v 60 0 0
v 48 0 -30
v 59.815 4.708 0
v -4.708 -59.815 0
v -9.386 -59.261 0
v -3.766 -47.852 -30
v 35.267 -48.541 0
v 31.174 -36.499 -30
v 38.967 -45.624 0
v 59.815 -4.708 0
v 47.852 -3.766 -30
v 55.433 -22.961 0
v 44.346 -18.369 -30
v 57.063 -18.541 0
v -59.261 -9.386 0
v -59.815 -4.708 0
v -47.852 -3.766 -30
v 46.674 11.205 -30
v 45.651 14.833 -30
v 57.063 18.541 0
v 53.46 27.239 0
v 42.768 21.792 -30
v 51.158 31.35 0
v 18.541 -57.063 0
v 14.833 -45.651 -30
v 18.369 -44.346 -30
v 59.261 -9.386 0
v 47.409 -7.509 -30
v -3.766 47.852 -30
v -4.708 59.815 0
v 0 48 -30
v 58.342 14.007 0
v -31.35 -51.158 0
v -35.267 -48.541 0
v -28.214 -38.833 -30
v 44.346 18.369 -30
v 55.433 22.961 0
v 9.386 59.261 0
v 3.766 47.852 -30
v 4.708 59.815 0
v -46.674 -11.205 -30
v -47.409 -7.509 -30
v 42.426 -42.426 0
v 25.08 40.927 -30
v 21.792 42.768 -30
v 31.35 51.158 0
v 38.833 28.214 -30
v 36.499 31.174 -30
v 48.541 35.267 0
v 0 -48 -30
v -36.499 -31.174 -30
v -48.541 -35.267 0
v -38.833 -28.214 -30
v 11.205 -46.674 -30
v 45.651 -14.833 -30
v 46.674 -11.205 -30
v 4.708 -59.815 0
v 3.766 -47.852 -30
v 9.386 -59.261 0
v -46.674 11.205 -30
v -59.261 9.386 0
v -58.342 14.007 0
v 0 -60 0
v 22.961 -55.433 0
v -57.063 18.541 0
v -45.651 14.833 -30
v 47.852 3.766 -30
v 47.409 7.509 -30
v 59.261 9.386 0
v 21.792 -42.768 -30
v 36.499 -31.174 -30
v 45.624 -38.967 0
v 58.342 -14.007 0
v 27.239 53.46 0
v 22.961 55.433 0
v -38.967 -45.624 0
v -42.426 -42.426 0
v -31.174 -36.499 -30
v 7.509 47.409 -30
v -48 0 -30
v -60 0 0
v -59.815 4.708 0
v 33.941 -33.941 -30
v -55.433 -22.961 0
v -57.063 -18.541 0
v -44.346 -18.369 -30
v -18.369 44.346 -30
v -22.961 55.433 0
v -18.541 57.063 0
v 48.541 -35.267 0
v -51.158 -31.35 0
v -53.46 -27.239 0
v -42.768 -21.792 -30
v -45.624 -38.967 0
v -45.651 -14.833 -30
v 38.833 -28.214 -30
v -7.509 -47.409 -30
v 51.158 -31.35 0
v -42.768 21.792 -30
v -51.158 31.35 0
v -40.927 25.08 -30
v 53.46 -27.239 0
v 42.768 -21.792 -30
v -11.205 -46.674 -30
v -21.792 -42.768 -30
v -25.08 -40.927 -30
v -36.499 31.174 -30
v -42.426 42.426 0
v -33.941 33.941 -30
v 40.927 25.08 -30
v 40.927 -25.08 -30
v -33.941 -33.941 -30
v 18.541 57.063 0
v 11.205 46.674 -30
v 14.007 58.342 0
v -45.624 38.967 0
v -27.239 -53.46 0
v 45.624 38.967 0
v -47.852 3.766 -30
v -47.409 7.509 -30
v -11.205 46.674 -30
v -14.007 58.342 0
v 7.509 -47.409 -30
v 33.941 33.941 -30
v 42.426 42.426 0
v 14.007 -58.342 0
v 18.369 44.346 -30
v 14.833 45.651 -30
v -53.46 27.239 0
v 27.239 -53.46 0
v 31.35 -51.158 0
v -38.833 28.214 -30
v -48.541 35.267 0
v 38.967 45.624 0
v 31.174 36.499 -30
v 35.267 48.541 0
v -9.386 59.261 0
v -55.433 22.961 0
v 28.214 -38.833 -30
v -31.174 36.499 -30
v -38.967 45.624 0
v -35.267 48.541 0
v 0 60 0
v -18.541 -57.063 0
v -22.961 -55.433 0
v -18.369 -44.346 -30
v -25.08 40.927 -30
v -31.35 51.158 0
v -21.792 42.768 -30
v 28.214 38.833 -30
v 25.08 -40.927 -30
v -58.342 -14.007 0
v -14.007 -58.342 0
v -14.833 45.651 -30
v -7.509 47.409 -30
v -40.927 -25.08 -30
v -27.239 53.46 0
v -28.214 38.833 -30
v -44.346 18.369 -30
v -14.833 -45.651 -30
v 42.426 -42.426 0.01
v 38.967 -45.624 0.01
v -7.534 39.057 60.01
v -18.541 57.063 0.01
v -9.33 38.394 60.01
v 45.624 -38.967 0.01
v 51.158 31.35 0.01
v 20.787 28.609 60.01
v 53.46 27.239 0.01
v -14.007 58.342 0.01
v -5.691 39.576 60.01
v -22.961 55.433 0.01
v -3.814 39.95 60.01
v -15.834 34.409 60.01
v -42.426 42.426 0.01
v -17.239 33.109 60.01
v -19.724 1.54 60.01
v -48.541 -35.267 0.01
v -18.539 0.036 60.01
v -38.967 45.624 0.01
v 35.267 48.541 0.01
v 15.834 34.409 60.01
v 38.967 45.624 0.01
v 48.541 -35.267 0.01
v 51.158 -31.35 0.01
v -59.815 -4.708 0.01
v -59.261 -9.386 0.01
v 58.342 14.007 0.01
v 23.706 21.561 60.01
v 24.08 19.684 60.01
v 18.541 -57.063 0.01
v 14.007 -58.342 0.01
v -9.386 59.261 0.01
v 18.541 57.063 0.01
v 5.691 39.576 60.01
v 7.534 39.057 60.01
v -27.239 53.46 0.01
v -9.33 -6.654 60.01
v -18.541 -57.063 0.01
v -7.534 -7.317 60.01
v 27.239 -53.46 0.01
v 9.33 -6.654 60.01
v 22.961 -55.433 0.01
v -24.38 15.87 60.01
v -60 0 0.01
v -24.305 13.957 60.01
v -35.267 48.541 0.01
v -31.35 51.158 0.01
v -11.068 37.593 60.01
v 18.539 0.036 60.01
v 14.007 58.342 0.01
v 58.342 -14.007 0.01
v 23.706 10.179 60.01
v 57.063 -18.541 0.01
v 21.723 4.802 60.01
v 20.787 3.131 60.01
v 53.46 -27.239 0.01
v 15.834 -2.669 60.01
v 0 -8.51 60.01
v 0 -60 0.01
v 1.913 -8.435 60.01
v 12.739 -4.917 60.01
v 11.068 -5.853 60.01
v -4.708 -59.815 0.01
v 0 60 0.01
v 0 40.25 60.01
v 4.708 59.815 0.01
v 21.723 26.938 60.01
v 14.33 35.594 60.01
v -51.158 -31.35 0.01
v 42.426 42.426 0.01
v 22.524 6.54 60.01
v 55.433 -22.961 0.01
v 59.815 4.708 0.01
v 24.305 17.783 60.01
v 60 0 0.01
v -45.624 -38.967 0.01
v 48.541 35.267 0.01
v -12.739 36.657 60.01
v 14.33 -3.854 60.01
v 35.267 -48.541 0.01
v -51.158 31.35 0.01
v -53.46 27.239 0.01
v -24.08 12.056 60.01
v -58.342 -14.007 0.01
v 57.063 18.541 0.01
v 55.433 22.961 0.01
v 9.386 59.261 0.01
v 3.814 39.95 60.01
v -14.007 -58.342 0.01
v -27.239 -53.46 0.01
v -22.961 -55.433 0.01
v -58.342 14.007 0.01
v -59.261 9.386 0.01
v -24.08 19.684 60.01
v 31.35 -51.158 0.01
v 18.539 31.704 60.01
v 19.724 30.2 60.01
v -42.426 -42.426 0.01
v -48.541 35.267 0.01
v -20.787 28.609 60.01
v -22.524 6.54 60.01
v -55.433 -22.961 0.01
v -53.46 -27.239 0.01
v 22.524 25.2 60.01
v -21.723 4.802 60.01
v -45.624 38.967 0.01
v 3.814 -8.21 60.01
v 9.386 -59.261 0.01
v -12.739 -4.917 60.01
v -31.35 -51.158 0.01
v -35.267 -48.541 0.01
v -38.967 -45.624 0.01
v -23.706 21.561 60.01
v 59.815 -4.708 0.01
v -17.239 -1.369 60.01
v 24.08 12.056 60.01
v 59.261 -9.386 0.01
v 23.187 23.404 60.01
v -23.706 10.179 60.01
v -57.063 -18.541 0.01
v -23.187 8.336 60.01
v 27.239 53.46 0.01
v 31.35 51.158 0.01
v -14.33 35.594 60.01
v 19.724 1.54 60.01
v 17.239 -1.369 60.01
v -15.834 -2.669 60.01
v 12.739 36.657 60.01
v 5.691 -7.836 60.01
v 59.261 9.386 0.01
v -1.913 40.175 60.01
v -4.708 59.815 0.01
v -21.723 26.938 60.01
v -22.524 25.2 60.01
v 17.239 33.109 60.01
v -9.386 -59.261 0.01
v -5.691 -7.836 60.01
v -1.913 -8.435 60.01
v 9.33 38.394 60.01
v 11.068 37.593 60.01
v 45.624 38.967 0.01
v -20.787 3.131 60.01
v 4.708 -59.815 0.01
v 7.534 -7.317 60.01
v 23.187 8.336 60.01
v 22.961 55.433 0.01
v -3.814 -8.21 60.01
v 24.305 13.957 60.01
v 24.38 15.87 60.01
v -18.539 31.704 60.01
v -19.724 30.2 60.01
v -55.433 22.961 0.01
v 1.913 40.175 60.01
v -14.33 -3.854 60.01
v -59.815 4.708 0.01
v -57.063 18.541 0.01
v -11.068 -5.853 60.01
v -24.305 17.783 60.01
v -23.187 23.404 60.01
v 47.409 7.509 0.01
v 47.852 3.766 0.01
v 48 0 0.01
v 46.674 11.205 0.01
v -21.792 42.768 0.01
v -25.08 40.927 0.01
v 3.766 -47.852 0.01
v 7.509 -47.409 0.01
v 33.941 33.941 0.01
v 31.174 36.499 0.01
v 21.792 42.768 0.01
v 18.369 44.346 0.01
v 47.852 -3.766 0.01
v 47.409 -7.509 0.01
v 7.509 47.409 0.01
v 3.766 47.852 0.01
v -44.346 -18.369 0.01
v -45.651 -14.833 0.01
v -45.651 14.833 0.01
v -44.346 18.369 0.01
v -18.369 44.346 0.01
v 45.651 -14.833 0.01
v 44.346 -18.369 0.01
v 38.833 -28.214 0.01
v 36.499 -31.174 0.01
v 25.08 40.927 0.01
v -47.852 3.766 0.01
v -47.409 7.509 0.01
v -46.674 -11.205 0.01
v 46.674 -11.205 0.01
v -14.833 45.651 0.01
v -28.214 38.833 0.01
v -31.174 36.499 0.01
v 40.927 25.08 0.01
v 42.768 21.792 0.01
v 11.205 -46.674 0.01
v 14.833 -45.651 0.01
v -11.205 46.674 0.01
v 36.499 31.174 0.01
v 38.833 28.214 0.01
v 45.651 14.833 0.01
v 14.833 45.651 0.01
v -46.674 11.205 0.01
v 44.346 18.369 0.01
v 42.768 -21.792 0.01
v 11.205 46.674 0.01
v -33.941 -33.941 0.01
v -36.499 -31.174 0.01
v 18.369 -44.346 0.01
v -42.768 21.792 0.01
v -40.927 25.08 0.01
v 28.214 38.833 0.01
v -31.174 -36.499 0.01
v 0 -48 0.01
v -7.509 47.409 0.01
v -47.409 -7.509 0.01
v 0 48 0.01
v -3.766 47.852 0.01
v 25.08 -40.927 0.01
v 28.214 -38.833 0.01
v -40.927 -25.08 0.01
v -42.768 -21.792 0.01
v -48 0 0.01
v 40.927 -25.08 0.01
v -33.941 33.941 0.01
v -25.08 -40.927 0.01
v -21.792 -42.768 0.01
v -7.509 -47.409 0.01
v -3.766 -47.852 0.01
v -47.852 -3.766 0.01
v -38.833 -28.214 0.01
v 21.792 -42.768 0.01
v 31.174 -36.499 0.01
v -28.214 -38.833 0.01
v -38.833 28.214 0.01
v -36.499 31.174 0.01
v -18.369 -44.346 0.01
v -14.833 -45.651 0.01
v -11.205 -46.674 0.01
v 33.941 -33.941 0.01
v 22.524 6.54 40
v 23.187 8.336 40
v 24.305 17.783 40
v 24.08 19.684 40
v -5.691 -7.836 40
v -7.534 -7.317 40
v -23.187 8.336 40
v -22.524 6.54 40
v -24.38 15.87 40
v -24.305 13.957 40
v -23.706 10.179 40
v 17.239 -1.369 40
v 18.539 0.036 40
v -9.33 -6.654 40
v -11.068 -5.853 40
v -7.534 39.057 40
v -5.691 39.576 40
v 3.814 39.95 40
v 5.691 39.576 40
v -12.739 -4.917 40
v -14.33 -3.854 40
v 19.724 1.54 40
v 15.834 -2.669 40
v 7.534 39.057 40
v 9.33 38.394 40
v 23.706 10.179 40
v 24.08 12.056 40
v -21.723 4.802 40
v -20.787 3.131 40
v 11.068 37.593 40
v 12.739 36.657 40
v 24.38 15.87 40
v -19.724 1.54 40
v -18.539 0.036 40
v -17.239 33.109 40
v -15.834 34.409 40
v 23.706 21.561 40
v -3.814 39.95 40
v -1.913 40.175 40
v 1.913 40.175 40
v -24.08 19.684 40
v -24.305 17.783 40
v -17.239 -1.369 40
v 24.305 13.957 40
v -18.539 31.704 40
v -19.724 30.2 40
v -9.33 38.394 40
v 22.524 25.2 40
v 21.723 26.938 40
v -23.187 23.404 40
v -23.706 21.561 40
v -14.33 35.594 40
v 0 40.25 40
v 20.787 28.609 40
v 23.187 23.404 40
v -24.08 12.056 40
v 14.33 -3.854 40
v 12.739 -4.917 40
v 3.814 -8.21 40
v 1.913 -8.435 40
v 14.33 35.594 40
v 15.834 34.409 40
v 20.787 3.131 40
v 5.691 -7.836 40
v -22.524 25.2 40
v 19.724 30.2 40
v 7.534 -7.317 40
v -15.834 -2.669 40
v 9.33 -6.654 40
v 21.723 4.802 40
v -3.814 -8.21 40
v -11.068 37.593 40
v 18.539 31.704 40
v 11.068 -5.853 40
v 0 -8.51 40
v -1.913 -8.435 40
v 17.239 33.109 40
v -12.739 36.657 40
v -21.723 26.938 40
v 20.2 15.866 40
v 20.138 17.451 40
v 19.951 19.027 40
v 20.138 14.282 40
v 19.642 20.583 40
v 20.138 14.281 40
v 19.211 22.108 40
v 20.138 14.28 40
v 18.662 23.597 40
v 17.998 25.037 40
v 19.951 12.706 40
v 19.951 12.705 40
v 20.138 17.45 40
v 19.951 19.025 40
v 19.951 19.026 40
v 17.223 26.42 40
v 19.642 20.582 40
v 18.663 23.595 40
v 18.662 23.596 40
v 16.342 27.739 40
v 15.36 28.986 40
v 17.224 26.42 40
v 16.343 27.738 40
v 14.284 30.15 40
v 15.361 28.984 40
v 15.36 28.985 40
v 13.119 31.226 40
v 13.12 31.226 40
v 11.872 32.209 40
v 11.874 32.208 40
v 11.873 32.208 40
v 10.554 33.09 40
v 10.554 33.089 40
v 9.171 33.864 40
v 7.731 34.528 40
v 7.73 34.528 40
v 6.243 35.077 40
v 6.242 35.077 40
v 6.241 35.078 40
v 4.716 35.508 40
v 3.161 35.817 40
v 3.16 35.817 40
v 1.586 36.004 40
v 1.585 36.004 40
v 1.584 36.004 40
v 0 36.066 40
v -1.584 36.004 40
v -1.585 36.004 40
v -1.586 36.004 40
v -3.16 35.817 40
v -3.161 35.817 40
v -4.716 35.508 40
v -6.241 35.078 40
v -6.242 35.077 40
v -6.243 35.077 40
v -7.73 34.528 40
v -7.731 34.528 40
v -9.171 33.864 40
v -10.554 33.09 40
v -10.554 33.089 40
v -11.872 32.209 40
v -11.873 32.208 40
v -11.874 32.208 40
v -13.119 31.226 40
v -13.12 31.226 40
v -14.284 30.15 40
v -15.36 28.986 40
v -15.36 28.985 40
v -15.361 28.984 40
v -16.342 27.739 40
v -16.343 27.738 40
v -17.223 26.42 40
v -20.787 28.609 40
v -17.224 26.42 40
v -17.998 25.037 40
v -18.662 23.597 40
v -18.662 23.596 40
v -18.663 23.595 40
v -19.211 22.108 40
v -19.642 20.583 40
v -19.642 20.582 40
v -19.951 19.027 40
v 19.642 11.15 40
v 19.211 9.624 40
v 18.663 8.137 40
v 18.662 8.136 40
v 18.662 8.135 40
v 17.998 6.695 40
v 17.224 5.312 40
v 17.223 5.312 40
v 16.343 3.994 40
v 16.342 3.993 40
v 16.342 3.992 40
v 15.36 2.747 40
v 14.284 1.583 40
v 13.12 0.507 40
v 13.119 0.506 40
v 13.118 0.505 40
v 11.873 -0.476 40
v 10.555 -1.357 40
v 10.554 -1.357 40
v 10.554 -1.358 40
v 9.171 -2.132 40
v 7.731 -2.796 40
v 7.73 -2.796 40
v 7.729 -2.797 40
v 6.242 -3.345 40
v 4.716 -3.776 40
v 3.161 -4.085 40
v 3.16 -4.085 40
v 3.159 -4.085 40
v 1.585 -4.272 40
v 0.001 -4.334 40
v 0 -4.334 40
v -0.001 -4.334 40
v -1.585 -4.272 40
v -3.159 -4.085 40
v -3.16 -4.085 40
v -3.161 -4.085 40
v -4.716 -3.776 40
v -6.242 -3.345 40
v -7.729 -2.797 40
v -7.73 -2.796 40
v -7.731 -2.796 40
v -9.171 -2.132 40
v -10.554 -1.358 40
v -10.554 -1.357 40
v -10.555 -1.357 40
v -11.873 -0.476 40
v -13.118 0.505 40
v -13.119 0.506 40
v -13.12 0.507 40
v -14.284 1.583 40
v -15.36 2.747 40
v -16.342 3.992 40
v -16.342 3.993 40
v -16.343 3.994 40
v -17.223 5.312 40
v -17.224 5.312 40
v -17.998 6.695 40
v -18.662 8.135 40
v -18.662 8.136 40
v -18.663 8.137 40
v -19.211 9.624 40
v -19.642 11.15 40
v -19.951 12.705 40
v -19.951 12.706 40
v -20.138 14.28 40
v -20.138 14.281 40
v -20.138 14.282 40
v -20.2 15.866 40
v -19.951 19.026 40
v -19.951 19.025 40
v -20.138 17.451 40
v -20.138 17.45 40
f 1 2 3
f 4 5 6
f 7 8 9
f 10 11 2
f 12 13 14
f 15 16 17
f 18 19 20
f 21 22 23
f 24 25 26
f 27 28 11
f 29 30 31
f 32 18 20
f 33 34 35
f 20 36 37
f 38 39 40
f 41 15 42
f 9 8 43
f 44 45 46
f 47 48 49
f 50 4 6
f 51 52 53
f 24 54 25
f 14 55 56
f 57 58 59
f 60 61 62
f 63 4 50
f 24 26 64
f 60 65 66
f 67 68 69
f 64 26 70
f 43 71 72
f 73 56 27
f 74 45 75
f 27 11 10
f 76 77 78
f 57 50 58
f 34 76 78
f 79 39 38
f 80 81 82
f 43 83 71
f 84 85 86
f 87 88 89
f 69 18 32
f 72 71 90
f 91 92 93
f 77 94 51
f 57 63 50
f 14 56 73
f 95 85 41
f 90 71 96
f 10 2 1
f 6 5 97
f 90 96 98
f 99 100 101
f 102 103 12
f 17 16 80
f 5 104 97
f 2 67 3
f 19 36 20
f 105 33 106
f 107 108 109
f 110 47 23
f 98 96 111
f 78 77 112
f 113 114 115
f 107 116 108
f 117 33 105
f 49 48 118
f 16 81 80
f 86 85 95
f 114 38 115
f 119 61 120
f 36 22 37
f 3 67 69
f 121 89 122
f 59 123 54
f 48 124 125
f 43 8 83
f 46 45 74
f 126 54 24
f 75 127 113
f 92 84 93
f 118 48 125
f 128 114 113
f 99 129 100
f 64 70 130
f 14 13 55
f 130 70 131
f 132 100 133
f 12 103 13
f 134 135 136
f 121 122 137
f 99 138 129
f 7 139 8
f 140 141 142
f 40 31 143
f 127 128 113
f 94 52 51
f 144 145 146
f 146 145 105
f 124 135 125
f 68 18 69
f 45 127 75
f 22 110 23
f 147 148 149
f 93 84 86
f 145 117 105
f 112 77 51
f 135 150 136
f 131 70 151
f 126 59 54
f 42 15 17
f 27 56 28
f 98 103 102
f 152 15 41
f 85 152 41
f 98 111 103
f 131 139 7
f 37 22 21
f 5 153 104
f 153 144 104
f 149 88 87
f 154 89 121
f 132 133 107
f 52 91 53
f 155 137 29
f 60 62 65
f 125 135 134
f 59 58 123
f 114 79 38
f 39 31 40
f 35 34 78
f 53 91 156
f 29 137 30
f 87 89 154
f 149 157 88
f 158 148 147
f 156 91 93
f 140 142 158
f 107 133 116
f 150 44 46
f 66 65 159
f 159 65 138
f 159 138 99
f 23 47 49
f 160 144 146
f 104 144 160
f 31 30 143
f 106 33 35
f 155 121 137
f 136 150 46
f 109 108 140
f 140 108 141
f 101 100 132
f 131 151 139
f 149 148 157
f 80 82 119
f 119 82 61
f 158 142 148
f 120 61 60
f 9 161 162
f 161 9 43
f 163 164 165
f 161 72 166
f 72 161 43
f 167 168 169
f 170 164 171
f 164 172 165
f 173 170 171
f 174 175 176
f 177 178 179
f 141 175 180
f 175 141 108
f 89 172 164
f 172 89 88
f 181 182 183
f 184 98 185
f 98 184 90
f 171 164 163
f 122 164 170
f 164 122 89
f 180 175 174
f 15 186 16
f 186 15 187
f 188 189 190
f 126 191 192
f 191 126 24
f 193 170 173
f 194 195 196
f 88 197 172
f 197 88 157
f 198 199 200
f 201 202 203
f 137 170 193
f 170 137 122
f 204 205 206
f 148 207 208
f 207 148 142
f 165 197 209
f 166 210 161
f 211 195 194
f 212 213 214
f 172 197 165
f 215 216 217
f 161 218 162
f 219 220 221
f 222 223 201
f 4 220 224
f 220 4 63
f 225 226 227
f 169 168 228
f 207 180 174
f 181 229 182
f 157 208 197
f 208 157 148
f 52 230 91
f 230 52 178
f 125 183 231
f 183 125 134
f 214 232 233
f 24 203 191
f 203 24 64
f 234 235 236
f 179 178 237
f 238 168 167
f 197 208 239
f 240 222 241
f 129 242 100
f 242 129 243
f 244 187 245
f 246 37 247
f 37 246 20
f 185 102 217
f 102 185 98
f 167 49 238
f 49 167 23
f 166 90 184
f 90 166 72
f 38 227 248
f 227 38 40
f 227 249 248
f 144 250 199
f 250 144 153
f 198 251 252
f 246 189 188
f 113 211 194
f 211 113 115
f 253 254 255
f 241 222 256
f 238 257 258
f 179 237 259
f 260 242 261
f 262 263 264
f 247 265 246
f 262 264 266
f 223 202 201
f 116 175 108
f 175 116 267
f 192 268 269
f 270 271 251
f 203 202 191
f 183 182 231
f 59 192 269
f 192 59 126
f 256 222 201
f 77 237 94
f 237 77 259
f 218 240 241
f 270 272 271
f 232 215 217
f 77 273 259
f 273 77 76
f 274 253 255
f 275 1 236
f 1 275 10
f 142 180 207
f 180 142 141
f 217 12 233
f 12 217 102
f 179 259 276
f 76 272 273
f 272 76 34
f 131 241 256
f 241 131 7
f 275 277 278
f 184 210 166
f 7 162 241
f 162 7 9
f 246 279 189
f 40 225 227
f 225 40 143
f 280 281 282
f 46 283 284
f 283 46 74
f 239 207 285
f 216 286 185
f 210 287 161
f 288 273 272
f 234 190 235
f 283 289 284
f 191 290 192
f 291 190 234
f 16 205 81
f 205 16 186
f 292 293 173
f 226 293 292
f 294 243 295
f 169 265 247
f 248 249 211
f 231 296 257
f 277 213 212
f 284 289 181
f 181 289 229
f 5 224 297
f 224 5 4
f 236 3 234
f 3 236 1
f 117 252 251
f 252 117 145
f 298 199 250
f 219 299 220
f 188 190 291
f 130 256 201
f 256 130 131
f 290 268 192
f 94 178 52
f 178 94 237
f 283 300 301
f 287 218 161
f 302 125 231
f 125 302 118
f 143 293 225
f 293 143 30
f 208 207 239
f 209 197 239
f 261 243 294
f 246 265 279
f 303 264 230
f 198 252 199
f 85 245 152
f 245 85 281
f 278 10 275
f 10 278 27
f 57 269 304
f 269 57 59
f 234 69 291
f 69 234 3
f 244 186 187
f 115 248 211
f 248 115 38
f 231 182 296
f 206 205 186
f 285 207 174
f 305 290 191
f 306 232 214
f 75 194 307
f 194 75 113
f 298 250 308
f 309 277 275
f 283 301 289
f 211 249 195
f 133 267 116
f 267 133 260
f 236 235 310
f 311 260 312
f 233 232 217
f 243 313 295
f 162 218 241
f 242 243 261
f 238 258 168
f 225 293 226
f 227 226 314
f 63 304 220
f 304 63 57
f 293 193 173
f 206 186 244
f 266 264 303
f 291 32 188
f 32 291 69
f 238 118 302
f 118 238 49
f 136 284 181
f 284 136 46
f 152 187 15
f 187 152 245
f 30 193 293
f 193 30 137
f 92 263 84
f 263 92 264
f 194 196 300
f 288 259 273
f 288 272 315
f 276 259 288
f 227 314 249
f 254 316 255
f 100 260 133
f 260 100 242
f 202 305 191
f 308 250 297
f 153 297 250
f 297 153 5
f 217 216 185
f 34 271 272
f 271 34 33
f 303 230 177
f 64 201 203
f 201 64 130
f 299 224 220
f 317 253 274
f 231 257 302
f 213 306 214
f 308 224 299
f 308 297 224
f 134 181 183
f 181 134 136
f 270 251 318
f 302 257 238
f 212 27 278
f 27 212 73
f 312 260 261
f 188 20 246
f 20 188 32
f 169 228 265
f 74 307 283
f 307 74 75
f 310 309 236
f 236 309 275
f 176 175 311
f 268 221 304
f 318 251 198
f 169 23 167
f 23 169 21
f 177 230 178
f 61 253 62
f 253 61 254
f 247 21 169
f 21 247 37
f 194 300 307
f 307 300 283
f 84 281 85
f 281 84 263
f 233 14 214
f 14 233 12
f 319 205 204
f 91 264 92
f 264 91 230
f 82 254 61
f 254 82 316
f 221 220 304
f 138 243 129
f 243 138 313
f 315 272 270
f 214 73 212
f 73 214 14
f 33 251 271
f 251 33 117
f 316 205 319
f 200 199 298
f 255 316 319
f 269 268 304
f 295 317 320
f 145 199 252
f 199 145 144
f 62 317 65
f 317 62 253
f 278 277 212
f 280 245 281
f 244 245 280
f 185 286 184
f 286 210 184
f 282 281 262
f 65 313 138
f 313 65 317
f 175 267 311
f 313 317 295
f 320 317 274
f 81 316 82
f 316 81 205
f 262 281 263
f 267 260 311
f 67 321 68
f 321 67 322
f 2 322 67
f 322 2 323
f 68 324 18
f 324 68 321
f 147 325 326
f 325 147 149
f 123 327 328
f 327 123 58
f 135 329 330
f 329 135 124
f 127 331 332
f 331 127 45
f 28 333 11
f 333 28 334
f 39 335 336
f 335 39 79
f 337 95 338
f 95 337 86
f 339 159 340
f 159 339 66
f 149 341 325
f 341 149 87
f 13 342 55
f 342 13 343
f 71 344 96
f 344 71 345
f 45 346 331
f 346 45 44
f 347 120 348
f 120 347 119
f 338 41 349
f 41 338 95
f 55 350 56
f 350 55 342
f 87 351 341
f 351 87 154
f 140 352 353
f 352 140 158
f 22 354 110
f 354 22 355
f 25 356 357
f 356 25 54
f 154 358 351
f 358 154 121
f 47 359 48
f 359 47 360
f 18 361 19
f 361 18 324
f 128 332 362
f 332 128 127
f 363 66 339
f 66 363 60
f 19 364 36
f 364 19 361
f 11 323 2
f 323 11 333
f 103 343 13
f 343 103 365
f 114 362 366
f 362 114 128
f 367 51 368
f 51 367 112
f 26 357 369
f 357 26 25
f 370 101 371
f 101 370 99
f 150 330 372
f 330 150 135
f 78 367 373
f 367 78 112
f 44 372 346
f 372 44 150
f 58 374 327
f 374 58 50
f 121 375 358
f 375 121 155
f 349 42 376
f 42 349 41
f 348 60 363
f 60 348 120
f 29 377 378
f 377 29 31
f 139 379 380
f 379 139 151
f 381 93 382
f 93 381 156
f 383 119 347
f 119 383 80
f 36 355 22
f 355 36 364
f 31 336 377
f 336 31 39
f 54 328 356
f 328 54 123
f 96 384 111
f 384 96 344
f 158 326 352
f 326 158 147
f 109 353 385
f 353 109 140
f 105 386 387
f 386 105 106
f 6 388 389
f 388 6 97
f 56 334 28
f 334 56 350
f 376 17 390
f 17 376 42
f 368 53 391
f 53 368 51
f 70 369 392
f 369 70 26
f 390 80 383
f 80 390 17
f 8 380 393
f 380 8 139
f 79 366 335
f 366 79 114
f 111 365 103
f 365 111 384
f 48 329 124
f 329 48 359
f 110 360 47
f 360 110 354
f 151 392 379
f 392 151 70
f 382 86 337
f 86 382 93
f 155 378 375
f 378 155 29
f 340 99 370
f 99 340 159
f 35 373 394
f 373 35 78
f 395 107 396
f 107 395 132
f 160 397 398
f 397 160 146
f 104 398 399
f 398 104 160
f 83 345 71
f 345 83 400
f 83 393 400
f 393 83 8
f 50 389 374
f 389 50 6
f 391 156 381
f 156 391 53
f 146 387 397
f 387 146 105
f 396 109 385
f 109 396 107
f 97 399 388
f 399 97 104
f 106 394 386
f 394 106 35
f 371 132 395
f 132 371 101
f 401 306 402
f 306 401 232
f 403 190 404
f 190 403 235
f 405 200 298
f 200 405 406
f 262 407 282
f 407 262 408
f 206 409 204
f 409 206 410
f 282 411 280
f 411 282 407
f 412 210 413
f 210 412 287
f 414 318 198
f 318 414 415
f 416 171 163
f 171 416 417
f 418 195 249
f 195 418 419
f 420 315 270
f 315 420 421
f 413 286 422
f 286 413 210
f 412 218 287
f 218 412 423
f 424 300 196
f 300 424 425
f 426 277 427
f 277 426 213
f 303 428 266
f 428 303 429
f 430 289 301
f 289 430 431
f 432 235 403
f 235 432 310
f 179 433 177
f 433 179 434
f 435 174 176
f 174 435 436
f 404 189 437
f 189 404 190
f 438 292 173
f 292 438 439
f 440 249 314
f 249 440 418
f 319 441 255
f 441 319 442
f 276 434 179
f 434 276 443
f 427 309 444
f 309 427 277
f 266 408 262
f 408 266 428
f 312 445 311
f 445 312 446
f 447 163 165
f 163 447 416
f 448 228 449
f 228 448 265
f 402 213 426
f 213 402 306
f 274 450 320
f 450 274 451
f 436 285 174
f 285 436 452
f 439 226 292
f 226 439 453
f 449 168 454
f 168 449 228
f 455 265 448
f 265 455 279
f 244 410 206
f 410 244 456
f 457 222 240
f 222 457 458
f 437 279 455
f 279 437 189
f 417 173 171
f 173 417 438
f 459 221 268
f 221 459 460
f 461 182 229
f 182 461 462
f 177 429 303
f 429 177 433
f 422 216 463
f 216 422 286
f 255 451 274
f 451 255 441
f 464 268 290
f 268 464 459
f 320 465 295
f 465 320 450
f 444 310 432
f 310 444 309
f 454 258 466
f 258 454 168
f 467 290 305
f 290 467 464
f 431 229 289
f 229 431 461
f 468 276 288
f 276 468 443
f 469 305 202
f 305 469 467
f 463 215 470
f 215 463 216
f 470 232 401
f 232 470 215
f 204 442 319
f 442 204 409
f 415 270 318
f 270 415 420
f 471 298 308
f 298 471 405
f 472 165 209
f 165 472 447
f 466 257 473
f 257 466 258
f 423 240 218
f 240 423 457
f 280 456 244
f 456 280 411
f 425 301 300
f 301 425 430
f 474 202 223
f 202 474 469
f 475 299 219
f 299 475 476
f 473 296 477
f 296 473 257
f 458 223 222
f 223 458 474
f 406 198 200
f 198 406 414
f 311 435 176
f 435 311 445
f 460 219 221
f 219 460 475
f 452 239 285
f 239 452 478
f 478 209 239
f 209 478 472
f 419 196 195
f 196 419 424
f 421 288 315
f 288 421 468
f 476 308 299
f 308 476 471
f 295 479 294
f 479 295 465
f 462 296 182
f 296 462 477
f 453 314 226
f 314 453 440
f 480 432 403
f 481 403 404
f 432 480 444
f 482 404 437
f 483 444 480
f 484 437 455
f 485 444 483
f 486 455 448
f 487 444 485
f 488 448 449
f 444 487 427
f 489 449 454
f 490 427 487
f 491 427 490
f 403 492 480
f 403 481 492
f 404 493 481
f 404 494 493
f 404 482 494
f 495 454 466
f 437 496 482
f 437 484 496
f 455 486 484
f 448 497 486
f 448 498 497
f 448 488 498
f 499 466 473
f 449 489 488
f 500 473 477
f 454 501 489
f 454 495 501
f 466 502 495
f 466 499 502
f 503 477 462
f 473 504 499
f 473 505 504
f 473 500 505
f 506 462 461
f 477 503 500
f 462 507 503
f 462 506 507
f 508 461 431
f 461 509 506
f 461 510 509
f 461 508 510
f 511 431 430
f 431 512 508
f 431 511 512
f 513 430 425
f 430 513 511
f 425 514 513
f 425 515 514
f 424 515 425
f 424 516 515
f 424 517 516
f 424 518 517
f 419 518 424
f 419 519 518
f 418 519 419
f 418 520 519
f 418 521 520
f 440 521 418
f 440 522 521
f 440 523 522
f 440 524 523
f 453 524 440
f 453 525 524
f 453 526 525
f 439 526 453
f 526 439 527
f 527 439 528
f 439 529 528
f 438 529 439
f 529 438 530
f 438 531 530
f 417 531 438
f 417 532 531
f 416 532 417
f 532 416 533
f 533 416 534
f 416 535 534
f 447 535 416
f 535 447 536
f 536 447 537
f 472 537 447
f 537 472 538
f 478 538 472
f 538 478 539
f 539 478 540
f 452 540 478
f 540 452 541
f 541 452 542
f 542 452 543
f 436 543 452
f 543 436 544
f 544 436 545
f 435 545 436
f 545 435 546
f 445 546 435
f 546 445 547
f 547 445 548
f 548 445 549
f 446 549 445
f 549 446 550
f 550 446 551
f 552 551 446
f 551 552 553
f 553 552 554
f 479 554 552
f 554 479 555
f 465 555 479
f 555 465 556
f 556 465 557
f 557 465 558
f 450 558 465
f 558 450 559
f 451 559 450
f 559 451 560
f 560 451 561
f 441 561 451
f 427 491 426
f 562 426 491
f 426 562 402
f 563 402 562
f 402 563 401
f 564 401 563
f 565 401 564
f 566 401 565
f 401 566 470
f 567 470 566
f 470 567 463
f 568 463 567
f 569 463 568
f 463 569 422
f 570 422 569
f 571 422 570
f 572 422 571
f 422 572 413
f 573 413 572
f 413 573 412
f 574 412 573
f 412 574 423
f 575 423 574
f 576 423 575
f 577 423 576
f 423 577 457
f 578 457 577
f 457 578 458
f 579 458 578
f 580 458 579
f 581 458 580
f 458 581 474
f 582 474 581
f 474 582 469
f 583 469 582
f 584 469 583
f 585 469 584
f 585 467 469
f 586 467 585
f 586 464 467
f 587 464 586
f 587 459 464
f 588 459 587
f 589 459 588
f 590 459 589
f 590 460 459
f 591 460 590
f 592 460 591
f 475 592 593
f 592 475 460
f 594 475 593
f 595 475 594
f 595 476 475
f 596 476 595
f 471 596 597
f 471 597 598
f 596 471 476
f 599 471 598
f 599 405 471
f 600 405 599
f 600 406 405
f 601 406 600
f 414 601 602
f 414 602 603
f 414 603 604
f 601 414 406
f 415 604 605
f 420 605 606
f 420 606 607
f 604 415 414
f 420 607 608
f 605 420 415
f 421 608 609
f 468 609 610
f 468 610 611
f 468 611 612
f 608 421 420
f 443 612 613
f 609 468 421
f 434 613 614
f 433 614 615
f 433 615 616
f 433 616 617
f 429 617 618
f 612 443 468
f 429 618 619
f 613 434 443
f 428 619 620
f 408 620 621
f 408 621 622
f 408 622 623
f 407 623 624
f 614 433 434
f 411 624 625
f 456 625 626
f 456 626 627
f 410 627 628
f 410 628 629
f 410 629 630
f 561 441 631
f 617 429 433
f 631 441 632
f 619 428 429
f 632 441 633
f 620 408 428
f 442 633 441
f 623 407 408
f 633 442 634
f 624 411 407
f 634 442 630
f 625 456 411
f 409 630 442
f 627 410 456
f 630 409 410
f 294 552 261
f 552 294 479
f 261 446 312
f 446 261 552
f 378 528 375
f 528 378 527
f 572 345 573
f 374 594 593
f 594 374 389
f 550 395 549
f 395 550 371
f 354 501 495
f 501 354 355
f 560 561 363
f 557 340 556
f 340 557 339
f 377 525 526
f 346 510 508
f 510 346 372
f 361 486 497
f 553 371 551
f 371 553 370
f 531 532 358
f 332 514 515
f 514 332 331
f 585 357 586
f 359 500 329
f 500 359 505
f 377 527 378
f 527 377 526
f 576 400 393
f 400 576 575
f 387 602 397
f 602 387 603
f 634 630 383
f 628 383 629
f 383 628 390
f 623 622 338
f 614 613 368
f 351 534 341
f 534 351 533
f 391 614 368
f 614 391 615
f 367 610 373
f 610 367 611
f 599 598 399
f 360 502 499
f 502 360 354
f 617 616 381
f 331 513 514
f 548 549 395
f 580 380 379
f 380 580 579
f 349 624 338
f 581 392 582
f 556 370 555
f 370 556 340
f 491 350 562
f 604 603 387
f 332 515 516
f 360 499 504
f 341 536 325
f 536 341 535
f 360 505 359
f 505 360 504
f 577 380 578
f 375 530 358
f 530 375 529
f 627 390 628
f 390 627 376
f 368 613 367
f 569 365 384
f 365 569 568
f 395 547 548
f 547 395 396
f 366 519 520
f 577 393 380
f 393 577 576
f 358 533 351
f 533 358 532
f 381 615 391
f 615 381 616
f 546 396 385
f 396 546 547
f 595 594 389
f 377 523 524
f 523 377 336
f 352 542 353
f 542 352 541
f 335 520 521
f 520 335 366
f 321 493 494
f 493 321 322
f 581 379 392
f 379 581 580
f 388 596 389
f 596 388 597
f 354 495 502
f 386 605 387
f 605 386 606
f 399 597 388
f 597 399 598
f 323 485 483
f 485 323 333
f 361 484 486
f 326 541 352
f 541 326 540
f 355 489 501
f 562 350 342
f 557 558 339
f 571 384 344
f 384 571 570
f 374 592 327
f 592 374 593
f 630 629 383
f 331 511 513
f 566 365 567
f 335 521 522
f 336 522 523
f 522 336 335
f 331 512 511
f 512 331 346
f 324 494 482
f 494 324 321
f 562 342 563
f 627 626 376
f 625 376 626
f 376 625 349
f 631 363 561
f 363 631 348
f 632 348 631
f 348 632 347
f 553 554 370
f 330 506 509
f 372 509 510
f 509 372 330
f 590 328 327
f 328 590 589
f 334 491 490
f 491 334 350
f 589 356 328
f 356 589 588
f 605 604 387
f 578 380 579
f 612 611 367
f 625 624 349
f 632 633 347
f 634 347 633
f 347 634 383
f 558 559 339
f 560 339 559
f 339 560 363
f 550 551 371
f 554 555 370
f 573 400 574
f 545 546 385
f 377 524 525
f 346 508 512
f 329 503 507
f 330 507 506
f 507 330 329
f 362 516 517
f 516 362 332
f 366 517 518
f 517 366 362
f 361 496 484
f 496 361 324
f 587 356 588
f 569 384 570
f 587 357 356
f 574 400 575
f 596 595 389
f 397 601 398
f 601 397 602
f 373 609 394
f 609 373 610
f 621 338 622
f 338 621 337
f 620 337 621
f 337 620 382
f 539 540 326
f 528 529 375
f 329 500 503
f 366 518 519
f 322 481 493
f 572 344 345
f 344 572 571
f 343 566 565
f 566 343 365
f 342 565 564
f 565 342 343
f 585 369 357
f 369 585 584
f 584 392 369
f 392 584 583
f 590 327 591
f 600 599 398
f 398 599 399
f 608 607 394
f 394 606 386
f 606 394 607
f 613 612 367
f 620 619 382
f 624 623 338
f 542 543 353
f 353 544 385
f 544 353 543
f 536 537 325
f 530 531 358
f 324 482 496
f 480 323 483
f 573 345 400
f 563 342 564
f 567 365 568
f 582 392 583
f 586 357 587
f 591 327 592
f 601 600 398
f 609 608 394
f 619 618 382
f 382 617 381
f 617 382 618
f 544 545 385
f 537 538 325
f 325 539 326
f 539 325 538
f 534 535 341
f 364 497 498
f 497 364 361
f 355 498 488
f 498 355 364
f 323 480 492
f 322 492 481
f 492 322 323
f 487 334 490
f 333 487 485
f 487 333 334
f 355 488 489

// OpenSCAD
$fn=80;

// units are mm
// schedule 40 1.5 inch pipe is OD=1.9 in., ID=1.590 in.
// fan shroud OD=~96mm

d_over_fan_max=120;
d_over_fan_min=96;
l_below=30;
l_above=60;
shelf_pos=40;

tube_id = 1.590*25.4;
tube_od = 1.9*25.4;
tube_od_fudge=0.5;

height_from_deck=20;
top_shift=d_over_fan_max/2-tube_od/2-height_from_deck;
//top_shift = 0;

difference(){
    union(){
        mirror([0,0,1]) cylinder(h=l_below, d1=d_over_fan_max, d2=d_over_fan_min,center=false);
        if (top_shift){
            hull(){
                cylinder(h=0.01, d=d_over_fan_max);
                translate([0,top_shift,l_above]) cylinder(h=0.01, d=tube_od+tube_od_fudge);
            }
        } else {
            cylinder(h=l_above, d1=d_over_fan_max, d2=tube_od+tube_od_fudge,center=false);
        }
    }
    translate([0,0,-l_below]) cylinder(h=l_below, d=d_over_fan_min, center=false);
    translate([0,top_shift,0]) translate([0,0,shelf_pos]) cylinder(h=l_below+l_above, d=tube_od+tube_od_fudge, center=false);
    if (top_shift){
        hull(){
            cylinder(h=0.01, d=d_over_fan_min);
            translate([0,top_shift,shelf_pos]) cylinder(h=0.01, d=tube_id);
        }
    } else {
        cylinder(h=shelf_pos, d1=d_over_fan_min, d2=tube_id, center=false);
    }
}
